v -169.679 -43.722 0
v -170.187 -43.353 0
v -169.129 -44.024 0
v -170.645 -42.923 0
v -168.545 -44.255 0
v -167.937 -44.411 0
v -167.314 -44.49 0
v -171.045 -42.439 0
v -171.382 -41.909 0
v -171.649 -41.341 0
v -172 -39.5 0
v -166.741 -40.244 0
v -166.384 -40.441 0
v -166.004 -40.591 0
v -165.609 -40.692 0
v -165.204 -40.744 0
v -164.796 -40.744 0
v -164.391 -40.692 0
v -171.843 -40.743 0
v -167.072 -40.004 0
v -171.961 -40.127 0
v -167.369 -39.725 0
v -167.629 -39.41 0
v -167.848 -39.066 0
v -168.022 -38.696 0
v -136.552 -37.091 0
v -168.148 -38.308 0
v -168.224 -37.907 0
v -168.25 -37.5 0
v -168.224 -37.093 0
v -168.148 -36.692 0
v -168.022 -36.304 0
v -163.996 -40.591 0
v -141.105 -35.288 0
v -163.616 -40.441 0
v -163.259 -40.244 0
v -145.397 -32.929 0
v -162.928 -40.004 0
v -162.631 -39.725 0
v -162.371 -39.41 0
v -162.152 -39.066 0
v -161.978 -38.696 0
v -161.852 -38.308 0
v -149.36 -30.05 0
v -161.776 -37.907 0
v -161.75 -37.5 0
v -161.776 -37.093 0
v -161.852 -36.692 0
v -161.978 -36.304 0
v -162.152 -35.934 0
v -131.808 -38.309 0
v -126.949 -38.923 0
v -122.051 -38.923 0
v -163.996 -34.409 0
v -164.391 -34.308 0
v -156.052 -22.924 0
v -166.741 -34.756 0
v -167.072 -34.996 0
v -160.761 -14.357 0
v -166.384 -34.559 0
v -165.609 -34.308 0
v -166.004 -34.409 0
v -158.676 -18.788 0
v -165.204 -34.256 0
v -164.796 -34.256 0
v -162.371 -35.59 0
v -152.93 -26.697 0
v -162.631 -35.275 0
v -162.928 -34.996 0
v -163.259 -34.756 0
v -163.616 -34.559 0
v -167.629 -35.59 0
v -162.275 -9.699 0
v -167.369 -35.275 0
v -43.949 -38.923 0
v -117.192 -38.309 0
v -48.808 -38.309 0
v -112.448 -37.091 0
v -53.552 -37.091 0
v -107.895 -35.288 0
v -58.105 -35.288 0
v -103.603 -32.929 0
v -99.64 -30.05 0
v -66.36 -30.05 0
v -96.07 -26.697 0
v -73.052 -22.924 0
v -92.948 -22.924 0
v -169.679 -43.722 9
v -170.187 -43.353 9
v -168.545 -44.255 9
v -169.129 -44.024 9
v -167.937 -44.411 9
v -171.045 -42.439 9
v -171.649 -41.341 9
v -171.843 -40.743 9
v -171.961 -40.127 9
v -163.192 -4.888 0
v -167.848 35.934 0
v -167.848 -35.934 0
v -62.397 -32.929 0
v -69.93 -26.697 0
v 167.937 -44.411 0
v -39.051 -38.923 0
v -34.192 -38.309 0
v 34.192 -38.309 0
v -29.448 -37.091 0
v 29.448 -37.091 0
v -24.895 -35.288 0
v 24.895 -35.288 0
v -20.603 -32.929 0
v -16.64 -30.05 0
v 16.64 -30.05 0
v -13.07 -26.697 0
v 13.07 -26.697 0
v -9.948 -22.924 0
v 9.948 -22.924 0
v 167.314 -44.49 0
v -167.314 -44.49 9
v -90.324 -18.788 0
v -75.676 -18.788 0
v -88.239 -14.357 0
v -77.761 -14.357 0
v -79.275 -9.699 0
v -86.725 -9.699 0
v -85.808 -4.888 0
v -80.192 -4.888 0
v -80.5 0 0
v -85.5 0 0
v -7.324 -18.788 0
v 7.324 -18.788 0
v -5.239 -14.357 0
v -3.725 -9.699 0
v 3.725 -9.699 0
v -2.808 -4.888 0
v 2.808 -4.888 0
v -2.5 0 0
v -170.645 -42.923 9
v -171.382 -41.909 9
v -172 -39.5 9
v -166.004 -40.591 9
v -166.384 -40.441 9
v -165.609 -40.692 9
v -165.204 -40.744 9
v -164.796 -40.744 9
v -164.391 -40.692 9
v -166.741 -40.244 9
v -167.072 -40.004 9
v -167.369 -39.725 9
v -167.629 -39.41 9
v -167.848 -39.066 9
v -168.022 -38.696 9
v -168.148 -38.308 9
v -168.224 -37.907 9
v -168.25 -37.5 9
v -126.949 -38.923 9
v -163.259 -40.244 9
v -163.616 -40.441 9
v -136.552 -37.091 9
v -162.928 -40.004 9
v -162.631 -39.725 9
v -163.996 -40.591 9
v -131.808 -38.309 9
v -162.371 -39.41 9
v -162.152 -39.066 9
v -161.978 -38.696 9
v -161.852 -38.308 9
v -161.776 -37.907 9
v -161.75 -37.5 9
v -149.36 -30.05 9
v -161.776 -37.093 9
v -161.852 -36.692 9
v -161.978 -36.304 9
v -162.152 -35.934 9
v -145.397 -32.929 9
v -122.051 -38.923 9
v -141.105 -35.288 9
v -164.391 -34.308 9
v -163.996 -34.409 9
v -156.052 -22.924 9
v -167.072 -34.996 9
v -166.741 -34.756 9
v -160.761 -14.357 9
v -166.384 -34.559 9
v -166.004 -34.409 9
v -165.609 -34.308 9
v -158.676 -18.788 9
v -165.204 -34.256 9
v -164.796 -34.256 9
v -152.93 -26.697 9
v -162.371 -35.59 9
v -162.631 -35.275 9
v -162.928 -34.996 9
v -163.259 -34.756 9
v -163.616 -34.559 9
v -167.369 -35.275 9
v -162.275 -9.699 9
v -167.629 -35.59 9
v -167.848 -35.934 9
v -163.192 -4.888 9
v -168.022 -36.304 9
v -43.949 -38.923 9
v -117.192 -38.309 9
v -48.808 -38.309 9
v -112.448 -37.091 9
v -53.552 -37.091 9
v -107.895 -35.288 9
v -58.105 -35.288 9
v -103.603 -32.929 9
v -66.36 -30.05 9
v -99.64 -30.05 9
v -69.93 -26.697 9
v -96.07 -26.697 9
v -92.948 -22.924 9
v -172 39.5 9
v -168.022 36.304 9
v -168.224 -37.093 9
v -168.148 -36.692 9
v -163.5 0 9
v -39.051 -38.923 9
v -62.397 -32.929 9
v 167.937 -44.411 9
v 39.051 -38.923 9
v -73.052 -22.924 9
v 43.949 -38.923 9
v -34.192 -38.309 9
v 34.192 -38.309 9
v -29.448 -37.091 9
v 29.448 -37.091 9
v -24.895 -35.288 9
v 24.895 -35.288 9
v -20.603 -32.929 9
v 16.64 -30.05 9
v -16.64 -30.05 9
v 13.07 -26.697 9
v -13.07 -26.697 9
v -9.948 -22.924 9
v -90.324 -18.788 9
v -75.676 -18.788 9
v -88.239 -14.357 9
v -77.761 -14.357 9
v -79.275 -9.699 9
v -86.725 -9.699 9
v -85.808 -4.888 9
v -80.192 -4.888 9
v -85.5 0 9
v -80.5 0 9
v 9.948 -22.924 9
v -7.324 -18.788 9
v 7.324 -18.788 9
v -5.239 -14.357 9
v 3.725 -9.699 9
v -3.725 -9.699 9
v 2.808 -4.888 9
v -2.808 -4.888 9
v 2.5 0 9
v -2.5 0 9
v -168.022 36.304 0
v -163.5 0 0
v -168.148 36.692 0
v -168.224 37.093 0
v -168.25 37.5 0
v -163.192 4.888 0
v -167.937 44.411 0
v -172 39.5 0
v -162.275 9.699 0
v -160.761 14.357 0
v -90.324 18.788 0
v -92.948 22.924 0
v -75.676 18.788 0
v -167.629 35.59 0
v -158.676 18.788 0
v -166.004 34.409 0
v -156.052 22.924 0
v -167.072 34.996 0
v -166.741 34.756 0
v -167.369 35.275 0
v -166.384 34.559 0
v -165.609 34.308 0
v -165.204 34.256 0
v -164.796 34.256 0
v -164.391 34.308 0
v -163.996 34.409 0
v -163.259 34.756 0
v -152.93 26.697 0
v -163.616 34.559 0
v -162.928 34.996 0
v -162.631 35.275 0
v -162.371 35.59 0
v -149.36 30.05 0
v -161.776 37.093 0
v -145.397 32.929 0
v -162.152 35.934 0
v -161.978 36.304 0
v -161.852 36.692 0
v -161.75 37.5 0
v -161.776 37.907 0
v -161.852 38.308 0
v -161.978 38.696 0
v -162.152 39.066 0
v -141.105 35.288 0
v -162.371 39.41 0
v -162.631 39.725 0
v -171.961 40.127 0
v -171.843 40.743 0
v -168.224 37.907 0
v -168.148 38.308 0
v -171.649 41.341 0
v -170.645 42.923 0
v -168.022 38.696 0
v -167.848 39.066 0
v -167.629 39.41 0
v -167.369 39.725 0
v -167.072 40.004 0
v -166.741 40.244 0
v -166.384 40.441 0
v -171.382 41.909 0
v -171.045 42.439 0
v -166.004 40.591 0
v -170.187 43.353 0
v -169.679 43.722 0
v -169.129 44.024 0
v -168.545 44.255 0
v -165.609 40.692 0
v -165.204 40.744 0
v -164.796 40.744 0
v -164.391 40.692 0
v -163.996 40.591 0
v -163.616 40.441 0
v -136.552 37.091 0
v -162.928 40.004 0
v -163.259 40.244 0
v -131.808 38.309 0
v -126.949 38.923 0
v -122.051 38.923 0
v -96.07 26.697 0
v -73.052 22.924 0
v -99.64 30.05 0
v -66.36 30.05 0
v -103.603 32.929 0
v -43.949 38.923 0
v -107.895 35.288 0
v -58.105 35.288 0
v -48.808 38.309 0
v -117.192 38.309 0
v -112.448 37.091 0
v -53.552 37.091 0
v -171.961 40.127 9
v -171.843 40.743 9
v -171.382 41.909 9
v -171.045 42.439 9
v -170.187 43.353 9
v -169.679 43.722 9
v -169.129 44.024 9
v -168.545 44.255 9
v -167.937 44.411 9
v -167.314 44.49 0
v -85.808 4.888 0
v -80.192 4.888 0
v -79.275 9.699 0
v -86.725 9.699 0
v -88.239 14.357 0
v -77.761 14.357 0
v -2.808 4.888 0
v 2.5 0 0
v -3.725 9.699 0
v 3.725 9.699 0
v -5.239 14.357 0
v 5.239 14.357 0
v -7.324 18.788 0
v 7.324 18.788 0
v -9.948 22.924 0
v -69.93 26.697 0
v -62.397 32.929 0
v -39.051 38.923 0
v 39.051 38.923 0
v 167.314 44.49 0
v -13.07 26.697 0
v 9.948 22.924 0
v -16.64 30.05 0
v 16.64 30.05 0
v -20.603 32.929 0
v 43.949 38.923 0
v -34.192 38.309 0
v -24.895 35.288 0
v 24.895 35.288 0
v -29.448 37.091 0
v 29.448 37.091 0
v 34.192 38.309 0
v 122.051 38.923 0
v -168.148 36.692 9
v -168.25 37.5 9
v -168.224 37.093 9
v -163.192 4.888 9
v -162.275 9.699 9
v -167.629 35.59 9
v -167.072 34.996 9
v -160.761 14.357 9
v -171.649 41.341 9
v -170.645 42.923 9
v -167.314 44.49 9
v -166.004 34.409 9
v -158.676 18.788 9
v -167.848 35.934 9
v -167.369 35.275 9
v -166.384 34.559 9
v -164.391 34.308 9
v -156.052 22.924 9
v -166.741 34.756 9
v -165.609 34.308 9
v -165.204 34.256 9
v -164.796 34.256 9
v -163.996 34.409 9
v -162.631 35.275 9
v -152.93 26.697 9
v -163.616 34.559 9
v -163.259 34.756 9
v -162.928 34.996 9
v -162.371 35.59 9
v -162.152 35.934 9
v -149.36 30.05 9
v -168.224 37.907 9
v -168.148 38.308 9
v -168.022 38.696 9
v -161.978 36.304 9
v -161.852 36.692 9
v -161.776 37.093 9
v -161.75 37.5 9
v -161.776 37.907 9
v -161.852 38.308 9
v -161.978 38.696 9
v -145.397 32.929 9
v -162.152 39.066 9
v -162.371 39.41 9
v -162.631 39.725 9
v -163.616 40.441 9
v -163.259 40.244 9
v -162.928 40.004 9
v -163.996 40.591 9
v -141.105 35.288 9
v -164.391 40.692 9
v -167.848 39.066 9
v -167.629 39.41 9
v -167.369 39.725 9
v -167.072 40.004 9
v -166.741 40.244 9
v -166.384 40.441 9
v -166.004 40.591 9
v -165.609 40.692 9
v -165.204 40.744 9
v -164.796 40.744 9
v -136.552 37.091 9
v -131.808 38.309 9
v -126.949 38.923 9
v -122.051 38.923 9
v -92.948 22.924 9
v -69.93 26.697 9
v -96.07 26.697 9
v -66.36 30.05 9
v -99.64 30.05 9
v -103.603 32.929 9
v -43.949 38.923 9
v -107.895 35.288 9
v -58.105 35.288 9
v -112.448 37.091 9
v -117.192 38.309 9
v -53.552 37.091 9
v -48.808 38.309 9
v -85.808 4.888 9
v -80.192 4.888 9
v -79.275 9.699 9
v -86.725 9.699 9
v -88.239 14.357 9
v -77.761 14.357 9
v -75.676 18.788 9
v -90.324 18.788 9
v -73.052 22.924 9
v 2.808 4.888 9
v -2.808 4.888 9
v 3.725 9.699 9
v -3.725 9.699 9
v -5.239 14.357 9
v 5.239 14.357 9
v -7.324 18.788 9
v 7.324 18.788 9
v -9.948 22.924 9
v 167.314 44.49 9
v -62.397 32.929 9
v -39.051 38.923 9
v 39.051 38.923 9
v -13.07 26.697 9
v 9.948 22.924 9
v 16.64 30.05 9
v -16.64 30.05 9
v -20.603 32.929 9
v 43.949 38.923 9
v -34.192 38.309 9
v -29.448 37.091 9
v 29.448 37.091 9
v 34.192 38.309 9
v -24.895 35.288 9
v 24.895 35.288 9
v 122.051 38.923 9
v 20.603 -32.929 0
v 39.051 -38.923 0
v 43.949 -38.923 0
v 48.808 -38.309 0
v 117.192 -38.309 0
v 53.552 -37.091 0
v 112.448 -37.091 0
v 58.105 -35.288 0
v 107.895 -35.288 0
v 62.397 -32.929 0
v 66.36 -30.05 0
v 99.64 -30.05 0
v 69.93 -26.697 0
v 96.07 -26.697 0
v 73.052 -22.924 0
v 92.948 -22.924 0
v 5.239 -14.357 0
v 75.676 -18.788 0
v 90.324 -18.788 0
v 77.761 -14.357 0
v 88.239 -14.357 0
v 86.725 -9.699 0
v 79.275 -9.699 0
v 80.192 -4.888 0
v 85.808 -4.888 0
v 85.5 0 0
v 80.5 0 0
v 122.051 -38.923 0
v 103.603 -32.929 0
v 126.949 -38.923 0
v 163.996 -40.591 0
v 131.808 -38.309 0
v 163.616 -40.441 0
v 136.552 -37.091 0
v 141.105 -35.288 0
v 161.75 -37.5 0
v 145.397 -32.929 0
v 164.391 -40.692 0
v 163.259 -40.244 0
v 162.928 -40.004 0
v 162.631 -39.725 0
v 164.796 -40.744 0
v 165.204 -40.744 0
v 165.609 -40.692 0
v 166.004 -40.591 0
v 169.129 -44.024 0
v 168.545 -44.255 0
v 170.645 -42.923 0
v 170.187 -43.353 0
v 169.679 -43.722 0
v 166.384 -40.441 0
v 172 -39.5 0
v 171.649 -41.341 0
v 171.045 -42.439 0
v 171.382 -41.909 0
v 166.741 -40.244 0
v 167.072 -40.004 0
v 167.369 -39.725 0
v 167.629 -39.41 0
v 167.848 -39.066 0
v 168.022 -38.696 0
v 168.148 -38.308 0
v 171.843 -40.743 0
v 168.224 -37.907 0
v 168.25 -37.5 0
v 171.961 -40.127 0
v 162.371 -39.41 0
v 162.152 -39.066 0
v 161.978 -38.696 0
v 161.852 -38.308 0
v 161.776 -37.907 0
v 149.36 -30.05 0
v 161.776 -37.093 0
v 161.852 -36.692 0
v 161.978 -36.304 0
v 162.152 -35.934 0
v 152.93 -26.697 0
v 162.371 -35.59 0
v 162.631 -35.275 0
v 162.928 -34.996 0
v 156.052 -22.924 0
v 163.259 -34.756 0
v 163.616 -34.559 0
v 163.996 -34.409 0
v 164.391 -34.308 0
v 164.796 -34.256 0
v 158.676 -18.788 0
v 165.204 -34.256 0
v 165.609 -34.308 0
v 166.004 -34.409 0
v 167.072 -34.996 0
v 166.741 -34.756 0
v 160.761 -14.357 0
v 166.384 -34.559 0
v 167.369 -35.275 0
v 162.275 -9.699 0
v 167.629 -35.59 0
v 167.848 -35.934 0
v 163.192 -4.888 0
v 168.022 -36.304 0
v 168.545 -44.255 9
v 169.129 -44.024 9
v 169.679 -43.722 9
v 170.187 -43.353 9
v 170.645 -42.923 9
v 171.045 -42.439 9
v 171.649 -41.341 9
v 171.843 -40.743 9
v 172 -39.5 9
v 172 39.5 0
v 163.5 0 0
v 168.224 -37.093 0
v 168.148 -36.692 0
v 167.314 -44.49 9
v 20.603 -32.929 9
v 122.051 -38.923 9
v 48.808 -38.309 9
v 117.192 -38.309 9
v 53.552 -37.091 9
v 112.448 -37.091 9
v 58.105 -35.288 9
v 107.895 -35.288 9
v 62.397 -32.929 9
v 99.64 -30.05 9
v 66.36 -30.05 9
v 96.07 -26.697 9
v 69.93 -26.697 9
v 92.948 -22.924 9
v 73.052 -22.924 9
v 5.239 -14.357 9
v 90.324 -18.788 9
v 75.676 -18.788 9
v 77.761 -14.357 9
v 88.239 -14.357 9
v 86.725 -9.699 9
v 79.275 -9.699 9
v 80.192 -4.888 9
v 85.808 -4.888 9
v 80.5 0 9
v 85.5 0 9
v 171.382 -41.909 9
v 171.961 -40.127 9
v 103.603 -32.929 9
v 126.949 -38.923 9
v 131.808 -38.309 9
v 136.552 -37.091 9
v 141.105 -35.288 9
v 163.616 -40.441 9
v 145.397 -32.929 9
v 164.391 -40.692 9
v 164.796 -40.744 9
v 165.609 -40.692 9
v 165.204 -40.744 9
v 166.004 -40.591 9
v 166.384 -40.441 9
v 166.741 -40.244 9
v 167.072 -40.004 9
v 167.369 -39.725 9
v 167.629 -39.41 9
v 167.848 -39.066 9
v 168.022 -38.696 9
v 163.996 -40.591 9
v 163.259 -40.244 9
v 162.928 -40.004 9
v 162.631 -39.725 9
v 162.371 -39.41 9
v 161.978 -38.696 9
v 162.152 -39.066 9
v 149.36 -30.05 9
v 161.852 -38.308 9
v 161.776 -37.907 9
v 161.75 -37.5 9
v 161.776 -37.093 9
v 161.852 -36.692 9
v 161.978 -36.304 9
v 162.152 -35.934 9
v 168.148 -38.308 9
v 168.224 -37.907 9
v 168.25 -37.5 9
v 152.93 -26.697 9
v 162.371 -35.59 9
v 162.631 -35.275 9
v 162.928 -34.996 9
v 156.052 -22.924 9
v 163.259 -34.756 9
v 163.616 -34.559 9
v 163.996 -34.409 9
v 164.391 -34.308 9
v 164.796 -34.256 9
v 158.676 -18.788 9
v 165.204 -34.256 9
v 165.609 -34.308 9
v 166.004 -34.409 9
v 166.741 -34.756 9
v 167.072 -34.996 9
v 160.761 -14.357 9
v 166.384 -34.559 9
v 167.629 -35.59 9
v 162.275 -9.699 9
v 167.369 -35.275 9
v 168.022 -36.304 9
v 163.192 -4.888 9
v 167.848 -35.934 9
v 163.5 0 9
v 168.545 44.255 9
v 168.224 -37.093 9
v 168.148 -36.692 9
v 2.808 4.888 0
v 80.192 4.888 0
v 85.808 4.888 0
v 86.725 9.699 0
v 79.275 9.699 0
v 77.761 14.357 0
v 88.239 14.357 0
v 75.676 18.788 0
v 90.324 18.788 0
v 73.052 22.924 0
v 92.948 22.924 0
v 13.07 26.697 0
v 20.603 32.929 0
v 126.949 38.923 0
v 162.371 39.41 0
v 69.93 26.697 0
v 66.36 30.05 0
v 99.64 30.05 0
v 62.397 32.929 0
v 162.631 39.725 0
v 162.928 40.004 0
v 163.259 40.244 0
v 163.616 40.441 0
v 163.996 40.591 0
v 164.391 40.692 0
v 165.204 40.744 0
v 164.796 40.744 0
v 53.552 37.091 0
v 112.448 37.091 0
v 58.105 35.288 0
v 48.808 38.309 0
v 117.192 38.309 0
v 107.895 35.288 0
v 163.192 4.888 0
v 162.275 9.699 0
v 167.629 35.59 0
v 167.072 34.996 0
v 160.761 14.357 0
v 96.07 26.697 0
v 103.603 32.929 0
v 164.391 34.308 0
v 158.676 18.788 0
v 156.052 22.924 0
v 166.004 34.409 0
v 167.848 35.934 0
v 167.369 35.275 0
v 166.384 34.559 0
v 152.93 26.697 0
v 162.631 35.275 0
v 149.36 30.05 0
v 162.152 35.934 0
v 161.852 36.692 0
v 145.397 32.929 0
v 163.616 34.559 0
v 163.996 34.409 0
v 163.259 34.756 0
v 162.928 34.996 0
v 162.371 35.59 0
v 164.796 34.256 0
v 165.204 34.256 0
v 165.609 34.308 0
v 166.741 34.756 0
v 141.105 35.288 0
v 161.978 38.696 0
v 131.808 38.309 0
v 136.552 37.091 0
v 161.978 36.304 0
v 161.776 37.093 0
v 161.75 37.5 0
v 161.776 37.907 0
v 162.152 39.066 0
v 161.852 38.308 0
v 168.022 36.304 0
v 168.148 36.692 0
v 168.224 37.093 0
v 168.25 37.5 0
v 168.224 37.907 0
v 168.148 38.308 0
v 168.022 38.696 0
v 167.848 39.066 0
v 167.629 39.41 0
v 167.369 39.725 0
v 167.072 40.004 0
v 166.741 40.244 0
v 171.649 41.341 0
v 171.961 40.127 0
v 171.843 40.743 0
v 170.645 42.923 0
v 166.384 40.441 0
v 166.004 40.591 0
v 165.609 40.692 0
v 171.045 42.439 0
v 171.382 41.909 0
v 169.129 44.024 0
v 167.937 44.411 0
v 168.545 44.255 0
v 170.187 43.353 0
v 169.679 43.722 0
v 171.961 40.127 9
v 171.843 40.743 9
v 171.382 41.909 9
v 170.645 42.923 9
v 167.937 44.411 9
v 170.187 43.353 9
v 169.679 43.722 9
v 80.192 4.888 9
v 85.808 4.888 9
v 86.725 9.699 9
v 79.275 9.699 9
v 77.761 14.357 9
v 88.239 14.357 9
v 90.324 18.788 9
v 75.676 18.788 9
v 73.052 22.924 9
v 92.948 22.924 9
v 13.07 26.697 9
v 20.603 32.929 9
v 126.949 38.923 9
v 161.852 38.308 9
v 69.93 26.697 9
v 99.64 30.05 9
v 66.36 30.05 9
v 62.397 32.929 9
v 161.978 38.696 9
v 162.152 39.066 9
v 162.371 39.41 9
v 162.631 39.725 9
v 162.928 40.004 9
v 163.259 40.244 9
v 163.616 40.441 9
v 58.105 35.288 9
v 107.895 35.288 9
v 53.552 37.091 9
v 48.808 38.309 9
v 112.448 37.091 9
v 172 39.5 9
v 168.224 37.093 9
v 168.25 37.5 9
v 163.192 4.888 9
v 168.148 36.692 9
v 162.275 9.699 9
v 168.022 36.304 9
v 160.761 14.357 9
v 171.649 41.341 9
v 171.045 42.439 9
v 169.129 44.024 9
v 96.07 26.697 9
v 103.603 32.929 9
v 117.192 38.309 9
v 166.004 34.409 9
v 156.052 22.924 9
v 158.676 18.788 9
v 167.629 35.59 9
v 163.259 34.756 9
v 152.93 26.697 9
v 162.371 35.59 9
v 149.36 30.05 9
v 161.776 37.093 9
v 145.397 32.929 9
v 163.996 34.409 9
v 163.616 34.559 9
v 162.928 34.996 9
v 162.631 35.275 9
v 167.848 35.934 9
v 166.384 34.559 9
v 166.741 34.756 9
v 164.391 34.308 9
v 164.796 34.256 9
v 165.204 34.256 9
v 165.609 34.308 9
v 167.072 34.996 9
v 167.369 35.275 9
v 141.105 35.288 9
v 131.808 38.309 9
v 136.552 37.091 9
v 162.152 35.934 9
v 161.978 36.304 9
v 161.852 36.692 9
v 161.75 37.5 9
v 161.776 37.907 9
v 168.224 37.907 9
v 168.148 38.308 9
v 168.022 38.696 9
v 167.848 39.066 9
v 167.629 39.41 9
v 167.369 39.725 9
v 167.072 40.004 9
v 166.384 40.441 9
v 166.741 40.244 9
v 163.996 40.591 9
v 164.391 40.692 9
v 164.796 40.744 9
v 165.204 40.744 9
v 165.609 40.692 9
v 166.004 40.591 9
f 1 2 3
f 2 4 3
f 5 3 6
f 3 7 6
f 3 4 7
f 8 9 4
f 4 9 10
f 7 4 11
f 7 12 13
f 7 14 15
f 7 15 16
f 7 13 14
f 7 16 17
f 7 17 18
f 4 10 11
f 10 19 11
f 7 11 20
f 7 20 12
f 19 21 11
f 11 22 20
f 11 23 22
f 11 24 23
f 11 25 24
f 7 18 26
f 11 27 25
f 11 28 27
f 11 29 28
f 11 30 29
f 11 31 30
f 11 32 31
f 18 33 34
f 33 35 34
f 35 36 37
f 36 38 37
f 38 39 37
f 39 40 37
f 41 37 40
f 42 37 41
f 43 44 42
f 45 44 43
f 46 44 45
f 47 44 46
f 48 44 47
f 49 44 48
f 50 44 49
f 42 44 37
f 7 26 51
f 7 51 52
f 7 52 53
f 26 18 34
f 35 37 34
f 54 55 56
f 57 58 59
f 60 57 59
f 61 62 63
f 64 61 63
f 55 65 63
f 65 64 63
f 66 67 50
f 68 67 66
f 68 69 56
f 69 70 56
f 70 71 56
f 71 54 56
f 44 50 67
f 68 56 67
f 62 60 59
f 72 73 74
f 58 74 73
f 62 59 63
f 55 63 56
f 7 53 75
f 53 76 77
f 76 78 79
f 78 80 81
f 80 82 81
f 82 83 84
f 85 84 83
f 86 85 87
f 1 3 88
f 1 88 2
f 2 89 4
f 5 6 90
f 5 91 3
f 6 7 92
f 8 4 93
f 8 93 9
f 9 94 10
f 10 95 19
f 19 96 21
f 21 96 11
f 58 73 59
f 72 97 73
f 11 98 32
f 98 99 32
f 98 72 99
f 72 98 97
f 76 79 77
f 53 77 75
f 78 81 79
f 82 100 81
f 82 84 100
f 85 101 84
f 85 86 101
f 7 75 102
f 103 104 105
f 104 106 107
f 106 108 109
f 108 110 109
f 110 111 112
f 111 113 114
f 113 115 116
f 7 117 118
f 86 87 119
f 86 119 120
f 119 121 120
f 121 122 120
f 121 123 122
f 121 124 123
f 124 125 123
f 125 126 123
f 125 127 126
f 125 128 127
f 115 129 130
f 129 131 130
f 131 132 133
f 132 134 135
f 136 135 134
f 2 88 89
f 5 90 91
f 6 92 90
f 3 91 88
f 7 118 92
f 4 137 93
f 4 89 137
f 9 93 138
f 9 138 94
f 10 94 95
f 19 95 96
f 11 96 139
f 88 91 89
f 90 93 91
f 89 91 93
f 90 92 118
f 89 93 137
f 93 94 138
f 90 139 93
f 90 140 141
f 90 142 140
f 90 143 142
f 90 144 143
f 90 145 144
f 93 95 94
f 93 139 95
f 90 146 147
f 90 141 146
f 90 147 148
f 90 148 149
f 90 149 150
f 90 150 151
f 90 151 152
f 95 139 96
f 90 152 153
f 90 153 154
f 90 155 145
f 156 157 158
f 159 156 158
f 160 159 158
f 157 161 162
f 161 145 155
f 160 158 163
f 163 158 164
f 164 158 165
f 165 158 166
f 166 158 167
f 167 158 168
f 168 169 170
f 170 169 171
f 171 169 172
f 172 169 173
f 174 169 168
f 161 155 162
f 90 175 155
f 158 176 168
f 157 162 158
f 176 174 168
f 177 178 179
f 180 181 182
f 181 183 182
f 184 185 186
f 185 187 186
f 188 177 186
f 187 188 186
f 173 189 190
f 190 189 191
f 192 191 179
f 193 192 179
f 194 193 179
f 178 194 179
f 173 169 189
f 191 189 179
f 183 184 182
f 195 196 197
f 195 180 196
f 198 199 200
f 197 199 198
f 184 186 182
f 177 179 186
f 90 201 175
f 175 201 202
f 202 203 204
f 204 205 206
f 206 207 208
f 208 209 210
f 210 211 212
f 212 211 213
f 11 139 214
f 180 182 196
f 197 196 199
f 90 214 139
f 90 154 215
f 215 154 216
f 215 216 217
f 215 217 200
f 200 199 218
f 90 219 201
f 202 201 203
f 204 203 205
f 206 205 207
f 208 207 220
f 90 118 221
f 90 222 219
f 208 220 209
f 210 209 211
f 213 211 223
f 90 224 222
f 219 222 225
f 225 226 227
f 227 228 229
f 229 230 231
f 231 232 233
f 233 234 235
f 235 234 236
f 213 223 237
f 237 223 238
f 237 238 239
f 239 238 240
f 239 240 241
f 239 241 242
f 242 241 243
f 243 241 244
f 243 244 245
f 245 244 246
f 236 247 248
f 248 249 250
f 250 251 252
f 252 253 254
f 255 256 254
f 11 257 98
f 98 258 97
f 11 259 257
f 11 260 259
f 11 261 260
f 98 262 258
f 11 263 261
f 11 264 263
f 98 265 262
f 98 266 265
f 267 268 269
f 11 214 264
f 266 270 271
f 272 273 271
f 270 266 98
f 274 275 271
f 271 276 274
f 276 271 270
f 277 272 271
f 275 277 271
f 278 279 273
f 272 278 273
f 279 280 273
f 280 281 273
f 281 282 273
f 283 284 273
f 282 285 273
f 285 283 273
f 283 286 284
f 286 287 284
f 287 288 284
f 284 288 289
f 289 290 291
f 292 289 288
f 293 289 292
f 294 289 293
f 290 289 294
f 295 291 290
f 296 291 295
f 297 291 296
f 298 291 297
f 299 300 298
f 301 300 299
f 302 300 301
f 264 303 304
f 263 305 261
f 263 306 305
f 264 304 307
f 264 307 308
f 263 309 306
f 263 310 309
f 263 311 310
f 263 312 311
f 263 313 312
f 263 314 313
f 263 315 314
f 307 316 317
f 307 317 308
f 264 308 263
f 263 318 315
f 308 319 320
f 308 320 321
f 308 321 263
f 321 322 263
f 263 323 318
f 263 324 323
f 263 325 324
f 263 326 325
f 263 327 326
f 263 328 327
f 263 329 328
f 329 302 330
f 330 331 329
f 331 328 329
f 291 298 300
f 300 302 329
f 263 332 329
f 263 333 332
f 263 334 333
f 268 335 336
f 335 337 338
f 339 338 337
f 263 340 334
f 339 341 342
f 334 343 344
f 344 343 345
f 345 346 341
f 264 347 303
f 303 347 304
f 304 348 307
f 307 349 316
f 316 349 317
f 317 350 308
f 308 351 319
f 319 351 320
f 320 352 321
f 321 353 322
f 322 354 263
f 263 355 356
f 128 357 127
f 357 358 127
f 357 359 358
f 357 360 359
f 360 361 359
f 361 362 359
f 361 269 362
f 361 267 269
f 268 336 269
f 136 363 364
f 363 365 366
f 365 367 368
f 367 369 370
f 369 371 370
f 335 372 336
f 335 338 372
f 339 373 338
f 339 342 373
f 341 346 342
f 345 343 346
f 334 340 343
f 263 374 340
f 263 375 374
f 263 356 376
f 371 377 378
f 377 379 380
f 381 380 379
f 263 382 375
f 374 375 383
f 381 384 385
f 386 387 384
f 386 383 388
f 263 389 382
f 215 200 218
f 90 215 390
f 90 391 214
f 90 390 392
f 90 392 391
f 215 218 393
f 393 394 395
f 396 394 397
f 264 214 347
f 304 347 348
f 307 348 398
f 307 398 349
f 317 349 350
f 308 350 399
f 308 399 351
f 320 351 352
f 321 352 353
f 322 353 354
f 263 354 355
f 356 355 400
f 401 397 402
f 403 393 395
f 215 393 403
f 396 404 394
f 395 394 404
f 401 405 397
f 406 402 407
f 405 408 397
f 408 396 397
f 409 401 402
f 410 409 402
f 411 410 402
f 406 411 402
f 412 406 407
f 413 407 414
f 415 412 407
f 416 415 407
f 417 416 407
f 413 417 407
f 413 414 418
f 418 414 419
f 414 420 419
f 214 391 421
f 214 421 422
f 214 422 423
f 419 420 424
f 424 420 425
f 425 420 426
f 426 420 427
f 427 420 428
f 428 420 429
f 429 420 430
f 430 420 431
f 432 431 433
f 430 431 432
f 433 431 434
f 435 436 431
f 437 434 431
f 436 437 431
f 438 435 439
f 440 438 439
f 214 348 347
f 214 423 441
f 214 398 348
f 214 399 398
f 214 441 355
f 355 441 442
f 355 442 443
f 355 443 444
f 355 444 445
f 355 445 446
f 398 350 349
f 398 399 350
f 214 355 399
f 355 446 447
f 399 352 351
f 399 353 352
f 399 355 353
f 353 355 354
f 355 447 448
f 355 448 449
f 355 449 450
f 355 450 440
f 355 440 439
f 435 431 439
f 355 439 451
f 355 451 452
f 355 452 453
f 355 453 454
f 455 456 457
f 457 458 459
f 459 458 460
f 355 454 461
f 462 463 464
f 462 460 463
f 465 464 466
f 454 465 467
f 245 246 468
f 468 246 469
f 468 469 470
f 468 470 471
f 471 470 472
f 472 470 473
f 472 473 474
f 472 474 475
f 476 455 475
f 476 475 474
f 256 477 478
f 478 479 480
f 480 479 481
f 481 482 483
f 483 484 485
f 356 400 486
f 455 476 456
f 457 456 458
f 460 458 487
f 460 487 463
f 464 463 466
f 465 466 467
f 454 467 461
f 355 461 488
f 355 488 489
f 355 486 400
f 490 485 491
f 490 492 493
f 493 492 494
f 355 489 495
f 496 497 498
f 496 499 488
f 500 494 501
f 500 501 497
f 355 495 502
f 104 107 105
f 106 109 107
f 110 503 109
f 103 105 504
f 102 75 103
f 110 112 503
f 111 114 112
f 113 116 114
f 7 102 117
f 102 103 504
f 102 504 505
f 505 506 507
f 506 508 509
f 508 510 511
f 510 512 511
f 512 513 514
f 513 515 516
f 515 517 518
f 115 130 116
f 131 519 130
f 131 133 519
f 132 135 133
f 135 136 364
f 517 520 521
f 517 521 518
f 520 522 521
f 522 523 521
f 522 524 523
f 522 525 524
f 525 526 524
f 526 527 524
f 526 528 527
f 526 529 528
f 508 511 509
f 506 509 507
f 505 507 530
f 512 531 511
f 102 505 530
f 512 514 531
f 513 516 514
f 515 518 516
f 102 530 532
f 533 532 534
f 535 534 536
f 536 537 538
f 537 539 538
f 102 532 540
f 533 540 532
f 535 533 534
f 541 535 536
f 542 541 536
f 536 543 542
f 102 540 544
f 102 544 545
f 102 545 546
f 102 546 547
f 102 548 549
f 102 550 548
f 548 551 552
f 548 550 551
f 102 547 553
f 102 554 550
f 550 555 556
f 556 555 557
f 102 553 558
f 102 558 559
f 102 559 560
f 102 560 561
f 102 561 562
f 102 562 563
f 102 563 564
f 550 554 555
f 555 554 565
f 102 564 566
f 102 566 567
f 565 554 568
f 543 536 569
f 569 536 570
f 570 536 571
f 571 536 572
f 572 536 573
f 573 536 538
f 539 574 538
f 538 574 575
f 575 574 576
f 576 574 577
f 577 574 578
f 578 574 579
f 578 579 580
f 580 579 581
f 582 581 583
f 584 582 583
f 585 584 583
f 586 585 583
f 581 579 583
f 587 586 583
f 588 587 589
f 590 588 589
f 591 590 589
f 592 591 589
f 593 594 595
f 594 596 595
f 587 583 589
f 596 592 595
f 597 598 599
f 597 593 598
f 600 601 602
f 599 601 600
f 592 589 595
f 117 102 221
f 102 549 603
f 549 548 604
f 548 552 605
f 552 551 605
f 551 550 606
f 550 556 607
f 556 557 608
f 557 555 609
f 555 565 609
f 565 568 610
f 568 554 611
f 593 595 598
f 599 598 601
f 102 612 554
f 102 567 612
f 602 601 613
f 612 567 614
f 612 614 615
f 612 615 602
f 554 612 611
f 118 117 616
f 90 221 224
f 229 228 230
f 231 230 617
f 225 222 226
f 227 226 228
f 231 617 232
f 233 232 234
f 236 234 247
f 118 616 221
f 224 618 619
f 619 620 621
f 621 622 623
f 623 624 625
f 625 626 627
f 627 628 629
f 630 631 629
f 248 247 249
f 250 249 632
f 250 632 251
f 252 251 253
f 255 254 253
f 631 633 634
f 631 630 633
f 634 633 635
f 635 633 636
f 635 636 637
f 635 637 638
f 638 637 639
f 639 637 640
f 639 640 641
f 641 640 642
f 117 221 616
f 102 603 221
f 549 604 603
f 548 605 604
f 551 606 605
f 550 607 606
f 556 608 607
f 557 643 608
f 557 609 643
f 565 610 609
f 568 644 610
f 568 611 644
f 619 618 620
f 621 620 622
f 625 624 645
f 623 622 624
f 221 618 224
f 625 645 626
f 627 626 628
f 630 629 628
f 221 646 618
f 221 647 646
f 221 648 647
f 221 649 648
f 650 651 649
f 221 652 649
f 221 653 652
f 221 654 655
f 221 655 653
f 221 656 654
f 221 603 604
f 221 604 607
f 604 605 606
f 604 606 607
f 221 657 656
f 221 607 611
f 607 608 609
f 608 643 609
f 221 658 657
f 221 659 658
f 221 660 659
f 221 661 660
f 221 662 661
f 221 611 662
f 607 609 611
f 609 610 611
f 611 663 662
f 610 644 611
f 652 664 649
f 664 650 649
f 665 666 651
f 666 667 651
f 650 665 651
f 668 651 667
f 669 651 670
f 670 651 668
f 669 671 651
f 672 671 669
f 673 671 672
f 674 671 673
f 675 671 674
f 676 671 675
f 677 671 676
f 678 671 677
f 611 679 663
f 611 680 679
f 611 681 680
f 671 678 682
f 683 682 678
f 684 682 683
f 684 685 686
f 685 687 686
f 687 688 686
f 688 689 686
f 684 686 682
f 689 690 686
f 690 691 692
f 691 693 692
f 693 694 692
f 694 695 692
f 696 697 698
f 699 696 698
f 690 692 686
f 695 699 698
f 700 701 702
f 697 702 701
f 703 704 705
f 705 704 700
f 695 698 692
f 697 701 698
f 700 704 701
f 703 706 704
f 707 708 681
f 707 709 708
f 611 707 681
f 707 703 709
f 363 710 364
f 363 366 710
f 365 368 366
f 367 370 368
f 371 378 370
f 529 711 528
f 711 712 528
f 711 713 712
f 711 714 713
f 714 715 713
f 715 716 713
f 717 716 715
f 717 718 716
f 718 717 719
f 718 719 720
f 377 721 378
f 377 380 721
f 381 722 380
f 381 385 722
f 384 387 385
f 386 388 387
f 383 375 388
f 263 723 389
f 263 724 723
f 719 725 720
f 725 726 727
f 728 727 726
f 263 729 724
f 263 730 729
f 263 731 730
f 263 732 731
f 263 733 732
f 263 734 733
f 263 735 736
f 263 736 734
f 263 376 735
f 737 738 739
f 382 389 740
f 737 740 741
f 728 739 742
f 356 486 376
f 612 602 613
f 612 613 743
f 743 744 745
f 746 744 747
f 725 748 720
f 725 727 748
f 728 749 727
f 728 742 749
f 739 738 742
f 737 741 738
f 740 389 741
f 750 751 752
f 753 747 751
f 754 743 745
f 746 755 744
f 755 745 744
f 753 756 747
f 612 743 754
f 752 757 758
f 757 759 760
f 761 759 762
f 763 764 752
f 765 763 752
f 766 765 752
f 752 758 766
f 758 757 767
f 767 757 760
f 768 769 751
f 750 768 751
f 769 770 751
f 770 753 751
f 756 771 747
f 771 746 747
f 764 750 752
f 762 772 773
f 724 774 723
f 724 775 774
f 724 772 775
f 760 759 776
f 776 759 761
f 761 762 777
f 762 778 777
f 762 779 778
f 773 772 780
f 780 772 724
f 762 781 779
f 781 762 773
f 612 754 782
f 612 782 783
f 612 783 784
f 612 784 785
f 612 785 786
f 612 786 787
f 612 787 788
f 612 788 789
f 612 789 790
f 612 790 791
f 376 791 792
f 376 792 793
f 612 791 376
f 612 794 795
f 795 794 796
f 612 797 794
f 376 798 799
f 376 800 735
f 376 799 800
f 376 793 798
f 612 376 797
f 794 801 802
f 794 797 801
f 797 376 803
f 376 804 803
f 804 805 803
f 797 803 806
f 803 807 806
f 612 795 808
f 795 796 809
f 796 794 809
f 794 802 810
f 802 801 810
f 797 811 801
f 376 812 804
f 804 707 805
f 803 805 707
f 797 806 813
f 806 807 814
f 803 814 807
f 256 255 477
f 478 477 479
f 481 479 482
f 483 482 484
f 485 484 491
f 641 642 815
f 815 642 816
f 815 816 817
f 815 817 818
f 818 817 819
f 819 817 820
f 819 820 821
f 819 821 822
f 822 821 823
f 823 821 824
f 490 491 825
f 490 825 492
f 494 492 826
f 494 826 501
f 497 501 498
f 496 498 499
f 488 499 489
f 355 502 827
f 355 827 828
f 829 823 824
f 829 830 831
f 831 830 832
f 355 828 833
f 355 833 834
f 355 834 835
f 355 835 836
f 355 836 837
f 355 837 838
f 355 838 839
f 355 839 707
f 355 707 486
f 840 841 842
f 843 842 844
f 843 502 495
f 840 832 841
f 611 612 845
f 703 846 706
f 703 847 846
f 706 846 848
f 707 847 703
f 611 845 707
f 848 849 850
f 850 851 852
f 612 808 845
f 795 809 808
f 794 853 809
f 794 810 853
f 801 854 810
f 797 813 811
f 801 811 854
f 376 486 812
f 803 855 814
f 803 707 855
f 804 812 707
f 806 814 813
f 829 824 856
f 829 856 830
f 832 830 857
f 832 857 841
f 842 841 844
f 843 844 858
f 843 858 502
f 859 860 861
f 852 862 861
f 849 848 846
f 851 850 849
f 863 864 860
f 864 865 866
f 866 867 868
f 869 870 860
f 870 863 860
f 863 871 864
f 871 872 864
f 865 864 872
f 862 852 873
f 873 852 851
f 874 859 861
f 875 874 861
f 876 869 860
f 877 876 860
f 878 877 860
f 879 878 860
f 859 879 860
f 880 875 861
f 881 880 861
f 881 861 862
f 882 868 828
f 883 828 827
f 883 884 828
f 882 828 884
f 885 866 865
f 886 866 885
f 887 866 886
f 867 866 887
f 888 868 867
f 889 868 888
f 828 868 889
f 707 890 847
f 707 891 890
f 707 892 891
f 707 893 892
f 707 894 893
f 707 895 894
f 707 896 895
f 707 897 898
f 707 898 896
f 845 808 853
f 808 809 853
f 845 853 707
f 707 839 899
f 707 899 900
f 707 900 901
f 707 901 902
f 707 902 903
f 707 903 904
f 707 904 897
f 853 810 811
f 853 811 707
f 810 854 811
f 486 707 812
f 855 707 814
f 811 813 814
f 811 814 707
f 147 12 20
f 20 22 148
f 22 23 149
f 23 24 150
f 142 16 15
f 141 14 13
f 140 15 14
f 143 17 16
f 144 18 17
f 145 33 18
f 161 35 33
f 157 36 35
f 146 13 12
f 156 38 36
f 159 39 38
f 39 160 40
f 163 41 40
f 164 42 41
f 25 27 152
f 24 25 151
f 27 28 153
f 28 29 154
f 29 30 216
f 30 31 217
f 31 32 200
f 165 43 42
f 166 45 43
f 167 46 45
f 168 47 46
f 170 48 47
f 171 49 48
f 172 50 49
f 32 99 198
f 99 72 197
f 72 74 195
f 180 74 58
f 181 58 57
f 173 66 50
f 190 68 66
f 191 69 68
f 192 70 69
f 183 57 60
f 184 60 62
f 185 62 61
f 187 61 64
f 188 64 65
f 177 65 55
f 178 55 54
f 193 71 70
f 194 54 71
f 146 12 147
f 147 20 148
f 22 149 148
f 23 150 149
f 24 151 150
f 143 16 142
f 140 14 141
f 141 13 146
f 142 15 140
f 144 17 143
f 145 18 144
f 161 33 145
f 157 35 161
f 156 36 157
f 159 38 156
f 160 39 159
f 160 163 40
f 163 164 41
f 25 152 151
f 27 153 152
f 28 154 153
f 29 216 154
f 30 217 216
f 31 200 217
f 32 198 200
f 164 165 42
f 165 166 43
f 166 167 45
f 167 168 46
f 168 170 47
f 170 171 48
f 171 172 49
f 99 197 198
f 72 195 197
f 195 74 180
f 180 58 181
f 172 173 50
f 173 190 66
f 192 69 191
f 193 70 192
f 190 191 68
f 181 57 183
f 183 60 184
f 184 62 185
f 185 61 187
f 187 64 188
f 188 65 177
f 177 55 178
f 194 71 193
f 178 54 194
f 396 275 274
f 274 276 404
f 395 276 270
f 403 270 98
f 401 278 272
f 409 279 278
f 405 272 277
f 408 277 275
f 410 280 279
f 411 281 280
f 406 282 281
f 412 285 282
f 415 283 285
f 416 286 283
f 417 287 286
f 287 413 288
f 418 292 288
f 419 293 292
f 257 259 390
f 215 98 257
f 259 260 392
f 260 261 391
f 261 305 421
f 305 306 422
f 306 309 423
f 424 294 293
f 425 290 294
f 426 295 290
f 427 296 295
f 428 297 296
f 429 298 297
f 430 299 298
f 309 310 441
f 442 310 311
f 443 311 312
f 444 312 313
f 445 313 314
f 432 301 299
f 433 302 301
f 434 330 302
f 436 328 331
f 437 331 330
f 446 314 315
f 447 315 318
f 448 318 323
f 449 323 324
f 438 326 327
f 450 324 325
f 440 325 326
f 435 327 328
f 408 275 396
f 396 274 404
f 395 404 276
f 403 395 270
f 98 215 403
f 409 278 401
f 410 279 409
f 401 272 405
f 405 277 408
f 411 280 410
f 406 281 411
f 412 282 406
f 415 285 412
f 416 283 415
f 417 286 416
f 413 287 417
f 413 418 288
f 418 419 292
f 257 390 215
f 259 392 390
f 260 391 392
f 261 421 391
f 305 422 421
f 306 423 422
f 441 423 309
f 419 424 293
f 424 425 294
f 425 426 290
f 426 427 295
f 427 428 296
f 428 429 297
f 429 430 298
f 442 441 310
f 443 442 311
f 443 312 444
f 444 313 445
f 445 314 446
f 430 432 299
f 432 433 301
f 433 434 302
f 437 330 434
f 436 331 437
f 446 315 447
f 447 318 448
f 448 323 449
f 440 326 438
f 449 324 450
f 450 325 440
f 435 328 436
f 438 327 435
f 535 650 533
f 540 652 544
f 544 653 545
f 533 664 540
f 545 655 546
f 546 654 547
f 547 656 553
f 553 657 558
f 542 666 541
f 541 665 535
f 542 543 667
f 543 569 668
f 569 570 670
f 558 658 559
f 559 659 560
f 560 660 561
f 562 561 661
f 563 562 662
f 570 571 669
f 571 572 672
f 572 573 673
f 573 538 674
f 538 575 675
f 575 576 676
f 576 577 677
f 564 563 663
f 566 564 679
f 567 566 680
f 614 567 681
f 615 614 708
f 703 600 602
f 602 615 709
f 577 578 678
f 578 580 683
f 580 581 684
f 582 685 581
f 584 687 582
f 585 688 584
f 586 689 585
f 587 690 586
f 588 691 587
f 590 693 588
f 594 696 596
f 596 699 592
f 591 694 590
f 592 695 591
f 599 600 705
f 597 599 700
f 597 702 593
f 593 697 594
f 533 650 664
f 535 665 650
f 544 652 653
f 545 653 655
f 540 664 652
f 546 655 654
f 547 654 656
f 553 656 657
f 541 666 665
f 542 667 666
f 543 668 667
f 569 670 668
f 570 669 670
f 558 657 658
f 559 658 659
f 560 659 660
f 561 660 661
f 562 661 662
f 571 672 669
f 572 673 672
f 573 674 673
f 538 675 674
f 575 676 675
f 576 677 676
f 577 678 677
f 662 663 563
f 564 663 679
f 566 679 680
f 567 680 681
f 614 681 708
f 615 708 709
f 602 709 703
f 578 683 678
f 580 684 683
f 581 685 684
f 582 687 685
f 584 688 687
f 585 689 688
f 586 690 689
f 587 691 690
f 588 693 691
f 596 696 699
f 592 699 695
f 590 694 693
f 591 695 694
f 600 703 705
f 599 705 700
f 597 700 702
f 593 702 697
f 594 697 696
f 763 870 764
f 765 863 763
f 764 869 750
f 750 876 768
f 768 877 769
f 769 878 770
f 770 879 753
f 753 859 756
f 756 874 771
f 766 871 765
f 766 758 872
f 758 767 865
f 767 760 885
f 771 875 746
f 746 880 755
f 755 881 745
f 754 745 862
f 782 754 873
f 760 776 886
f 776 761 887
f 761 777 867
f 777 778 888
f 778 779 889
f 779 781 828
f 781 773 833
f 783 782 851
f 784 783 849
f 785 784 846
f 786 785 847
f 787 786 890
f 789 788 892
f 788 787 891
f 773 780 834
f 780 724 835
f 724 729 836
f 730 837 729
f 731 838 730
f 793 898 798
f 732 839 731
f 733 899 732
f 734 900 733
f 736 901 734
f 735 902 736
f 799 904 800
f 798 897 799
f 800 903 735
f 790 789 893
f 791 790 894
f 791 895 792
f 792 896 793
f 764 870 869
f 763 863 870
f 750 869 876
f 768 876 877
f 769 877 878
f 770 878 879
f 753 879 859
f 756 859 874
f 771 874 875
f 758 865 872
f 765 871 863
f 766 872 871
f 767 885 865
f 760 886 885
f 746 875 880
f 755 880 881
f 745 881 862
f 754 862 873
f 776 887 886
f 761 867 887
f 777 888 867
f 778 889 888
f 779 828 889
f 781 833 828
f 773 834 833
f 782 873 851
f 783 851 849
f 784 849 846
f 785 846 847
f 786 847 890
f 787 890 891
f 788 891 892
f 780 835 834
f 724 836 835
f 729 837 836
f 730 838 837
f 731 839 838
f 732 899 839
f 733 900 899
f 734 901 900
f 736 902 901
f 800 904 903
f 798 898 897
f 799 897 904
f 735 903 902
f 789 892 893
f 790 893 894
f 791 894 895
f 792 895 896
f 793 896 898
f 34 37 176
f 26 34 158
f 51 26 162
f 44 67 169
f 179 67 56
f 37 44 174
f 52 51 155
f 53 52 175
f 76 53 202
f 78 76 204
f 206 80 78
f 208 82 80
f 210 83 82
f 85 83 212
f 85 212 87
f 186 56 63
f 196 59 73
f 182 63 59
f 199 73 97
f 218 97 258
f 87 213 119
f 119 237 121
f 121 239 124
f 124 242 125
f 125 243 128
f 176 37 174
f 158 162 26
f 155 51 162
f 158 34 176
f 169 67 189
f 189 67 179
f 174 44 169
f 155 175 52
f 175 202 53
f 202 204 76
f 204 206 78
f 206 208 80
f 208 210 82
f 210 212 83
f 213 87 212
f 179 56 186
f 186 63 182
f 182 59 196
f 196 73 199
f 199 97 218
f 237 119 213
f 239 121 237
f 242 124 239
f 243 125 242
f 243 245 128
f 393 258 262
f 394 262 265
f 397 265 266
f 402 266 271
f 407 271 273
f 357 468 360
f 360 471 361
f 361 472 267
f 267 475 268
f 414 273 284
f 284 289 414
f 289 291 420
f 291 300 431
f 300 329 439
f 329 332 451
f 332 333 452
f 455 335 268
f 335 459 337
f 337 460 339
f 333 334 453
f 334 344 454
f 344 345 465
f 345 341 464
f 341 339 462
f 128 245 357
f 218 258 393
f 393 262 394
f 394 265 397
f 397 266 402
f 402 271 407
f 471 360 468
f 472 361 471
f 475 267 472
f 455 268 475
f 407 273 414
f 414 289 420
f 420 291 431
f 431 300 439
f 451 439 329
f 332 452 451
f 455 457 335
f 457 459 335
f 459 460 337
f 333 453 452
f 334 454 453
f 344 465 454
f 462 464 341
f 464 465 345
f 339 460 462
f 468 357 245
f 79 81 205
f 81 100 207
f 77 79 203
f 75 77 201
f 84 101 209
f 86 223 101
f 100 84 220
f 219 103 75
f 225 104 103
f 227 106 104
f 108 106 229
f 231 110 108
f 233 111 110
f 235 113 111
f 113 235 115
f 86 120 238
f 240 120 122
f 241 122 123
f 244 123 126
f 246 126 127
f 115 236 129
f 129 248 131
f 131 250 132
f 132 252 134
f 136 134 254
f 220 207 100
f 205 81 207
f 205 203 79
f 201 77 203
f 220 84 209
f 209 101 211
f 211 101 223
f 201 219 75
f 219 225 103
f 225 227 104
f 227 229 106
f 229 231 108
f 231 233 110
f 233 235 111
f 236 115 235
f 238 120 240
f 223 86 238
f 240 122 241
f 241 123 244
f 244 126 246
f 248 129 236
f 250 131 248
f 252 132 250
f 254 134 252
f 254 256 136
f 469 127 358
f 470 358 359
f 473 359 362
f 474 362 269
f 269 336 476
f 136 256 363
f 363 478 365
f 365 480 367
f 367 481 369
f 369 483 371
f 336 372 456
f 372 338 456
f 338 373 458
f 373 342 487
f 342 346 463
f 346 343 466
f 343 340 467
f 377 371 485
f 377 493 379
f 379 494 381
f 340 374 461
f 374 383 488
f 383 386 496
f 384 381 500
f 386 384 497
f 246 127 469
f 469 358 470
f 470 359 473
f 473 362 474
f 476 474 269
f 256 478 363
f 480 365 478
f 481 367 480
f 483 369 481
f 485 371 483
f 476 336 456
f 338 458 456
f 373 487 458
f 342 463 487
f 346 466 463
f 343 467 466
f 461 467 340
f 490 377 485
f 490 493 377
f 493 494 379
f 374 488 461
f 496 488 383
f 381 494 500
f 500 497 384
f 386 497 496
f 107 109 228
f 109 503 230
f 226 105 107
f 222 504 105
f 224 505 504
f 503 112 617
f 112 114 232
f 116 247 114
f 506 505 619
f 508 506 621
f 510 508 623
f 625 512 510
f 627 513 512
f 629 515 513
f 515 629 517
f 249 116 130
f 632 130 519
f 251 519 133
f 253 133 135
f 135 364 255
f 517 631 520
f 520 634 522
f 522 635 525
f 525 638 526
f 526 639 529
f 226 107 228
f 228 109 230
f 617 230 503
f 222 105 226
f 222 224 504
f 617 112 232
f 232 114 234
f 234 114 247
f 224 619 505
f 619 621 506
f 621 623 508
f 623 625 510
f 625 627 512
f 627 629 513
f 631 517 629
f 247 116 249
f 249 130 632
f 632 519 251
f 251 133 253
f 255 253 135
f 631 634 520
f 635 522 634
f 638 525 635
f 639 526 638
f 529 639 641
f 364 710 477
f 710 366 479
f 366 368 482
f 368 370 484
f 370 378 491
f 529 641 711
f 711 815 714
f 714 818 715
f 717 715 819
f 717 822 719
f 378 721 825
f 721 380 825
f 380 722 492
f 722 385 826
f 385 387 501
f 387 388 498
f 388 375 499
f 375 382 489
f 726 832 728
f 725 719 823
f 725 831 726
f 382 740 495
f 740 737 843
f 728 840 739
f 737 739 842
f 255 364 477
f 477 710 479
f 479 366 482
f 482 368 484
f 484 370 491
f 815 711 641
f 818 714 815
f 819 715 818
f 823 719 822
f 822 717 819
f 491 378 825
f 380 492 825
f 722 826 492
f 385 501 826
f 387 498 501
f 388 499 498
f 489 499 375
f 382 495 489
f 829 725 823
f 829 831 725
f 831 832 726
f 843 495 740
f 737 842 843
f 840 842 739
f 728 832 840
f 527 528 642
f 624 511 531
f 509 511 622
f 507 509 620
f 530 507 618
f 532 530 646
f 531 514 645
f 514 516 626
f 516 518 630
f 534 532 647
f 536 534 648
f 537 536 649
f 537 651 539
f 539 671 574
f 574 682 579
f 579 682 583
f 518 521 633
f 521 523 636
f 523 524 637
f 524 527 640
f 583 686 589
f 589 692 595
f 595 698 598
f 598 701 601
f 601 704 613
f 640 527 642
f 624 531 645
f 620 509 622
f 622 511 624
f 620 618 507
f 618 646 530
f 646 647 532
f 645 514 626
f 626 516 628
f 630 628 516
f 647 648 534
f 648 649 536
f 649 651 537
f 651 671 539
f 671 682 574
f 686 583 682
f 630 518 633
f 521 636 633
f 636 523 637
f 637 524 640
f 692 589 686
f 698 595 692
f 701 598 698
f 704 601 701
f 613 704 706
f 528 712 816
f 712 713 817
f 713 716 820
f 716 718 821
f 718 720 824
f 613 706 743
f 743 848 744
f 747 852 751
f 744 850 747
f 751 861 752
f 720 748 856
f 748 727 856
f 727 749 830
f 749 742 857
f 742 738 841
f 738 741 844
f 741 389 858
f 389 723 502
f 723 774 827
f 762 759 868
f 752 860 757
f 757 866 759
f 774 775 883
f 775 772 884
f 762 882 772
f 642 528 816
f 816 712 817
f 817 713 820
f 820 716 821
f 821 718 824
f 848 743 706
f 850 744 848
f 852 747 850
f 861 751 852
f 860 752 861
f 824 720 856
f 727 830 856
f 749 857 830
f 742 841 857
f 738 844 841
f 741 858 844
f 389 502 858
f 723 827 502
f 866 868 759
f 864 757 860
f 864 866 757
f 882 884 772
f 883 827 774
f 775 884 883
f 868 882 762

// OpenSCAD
$fn = 50;

difference() {
	union() {
		hull() {
			translate(v = [-167.0, 39.5, 0]) {
				cylinder(h = 9, r = 5);
			}
			translate(v = [167.0, 39.5, 0]) {
				cylinder(h = 9, r = 5);
			}
			translate(v = [-167.0, -39.5, 0]) {
				cylinder(h = 9, r = 5);
			}
			translate(v = [167.0, -39.5, 0]) {
				cylinder(h = 9, r = 5);
			}
		}
	}
	union() {
		translate(v = [-165.0, -37.5, -100.0]) {
			cylinder(h = 200, r = 3.25);
		}
		translate(v = [-165.0, 37.5, -100.0]) {
			cylinder(h = 200, r = 3.25);
		}
		translate(v = [165.0, -37.5, -100.0]) {
			cylinder(h = 200, r = 3.25);
		}
		translate(v = [165.0, 37.5, -100.0]) {
			cylinder(h = 200, r = 3.25);
		}
		translate(v = [-165.0, -37.5, -100.0]) {
			cylinder(h = 200, r = 1.8);
		}
		translate(v = [-165.0, 37.5, -100.0]) {
			cylinder(h = 200, r = 1.8);
		}
		translate(v = [165.0, -37.5, -100.0]) {
			cylinder(h = 200, r = 1.8);
		}
		translate(v = [165.0, 37.5, -100.0]) {
			cylinder(h = 200, r = 1.8);
		}
		translate(v = [-124.5, 0, 0.0]) {
			cylinder(h = 9, r = 39.0);
		}
		translate(v = [-41.5, 0, 0.0]) {
			cylinder(h = 9, r = 39.0);
		}
		translate(v = [41.5, 0, 0.0]) {
			cylinder(h = 9, r = 39.0);
		}
		translate(v = [124.5, 0, 0.0]) {
			cylinder(h = 9, r = 39.0);
		}
	}
}
